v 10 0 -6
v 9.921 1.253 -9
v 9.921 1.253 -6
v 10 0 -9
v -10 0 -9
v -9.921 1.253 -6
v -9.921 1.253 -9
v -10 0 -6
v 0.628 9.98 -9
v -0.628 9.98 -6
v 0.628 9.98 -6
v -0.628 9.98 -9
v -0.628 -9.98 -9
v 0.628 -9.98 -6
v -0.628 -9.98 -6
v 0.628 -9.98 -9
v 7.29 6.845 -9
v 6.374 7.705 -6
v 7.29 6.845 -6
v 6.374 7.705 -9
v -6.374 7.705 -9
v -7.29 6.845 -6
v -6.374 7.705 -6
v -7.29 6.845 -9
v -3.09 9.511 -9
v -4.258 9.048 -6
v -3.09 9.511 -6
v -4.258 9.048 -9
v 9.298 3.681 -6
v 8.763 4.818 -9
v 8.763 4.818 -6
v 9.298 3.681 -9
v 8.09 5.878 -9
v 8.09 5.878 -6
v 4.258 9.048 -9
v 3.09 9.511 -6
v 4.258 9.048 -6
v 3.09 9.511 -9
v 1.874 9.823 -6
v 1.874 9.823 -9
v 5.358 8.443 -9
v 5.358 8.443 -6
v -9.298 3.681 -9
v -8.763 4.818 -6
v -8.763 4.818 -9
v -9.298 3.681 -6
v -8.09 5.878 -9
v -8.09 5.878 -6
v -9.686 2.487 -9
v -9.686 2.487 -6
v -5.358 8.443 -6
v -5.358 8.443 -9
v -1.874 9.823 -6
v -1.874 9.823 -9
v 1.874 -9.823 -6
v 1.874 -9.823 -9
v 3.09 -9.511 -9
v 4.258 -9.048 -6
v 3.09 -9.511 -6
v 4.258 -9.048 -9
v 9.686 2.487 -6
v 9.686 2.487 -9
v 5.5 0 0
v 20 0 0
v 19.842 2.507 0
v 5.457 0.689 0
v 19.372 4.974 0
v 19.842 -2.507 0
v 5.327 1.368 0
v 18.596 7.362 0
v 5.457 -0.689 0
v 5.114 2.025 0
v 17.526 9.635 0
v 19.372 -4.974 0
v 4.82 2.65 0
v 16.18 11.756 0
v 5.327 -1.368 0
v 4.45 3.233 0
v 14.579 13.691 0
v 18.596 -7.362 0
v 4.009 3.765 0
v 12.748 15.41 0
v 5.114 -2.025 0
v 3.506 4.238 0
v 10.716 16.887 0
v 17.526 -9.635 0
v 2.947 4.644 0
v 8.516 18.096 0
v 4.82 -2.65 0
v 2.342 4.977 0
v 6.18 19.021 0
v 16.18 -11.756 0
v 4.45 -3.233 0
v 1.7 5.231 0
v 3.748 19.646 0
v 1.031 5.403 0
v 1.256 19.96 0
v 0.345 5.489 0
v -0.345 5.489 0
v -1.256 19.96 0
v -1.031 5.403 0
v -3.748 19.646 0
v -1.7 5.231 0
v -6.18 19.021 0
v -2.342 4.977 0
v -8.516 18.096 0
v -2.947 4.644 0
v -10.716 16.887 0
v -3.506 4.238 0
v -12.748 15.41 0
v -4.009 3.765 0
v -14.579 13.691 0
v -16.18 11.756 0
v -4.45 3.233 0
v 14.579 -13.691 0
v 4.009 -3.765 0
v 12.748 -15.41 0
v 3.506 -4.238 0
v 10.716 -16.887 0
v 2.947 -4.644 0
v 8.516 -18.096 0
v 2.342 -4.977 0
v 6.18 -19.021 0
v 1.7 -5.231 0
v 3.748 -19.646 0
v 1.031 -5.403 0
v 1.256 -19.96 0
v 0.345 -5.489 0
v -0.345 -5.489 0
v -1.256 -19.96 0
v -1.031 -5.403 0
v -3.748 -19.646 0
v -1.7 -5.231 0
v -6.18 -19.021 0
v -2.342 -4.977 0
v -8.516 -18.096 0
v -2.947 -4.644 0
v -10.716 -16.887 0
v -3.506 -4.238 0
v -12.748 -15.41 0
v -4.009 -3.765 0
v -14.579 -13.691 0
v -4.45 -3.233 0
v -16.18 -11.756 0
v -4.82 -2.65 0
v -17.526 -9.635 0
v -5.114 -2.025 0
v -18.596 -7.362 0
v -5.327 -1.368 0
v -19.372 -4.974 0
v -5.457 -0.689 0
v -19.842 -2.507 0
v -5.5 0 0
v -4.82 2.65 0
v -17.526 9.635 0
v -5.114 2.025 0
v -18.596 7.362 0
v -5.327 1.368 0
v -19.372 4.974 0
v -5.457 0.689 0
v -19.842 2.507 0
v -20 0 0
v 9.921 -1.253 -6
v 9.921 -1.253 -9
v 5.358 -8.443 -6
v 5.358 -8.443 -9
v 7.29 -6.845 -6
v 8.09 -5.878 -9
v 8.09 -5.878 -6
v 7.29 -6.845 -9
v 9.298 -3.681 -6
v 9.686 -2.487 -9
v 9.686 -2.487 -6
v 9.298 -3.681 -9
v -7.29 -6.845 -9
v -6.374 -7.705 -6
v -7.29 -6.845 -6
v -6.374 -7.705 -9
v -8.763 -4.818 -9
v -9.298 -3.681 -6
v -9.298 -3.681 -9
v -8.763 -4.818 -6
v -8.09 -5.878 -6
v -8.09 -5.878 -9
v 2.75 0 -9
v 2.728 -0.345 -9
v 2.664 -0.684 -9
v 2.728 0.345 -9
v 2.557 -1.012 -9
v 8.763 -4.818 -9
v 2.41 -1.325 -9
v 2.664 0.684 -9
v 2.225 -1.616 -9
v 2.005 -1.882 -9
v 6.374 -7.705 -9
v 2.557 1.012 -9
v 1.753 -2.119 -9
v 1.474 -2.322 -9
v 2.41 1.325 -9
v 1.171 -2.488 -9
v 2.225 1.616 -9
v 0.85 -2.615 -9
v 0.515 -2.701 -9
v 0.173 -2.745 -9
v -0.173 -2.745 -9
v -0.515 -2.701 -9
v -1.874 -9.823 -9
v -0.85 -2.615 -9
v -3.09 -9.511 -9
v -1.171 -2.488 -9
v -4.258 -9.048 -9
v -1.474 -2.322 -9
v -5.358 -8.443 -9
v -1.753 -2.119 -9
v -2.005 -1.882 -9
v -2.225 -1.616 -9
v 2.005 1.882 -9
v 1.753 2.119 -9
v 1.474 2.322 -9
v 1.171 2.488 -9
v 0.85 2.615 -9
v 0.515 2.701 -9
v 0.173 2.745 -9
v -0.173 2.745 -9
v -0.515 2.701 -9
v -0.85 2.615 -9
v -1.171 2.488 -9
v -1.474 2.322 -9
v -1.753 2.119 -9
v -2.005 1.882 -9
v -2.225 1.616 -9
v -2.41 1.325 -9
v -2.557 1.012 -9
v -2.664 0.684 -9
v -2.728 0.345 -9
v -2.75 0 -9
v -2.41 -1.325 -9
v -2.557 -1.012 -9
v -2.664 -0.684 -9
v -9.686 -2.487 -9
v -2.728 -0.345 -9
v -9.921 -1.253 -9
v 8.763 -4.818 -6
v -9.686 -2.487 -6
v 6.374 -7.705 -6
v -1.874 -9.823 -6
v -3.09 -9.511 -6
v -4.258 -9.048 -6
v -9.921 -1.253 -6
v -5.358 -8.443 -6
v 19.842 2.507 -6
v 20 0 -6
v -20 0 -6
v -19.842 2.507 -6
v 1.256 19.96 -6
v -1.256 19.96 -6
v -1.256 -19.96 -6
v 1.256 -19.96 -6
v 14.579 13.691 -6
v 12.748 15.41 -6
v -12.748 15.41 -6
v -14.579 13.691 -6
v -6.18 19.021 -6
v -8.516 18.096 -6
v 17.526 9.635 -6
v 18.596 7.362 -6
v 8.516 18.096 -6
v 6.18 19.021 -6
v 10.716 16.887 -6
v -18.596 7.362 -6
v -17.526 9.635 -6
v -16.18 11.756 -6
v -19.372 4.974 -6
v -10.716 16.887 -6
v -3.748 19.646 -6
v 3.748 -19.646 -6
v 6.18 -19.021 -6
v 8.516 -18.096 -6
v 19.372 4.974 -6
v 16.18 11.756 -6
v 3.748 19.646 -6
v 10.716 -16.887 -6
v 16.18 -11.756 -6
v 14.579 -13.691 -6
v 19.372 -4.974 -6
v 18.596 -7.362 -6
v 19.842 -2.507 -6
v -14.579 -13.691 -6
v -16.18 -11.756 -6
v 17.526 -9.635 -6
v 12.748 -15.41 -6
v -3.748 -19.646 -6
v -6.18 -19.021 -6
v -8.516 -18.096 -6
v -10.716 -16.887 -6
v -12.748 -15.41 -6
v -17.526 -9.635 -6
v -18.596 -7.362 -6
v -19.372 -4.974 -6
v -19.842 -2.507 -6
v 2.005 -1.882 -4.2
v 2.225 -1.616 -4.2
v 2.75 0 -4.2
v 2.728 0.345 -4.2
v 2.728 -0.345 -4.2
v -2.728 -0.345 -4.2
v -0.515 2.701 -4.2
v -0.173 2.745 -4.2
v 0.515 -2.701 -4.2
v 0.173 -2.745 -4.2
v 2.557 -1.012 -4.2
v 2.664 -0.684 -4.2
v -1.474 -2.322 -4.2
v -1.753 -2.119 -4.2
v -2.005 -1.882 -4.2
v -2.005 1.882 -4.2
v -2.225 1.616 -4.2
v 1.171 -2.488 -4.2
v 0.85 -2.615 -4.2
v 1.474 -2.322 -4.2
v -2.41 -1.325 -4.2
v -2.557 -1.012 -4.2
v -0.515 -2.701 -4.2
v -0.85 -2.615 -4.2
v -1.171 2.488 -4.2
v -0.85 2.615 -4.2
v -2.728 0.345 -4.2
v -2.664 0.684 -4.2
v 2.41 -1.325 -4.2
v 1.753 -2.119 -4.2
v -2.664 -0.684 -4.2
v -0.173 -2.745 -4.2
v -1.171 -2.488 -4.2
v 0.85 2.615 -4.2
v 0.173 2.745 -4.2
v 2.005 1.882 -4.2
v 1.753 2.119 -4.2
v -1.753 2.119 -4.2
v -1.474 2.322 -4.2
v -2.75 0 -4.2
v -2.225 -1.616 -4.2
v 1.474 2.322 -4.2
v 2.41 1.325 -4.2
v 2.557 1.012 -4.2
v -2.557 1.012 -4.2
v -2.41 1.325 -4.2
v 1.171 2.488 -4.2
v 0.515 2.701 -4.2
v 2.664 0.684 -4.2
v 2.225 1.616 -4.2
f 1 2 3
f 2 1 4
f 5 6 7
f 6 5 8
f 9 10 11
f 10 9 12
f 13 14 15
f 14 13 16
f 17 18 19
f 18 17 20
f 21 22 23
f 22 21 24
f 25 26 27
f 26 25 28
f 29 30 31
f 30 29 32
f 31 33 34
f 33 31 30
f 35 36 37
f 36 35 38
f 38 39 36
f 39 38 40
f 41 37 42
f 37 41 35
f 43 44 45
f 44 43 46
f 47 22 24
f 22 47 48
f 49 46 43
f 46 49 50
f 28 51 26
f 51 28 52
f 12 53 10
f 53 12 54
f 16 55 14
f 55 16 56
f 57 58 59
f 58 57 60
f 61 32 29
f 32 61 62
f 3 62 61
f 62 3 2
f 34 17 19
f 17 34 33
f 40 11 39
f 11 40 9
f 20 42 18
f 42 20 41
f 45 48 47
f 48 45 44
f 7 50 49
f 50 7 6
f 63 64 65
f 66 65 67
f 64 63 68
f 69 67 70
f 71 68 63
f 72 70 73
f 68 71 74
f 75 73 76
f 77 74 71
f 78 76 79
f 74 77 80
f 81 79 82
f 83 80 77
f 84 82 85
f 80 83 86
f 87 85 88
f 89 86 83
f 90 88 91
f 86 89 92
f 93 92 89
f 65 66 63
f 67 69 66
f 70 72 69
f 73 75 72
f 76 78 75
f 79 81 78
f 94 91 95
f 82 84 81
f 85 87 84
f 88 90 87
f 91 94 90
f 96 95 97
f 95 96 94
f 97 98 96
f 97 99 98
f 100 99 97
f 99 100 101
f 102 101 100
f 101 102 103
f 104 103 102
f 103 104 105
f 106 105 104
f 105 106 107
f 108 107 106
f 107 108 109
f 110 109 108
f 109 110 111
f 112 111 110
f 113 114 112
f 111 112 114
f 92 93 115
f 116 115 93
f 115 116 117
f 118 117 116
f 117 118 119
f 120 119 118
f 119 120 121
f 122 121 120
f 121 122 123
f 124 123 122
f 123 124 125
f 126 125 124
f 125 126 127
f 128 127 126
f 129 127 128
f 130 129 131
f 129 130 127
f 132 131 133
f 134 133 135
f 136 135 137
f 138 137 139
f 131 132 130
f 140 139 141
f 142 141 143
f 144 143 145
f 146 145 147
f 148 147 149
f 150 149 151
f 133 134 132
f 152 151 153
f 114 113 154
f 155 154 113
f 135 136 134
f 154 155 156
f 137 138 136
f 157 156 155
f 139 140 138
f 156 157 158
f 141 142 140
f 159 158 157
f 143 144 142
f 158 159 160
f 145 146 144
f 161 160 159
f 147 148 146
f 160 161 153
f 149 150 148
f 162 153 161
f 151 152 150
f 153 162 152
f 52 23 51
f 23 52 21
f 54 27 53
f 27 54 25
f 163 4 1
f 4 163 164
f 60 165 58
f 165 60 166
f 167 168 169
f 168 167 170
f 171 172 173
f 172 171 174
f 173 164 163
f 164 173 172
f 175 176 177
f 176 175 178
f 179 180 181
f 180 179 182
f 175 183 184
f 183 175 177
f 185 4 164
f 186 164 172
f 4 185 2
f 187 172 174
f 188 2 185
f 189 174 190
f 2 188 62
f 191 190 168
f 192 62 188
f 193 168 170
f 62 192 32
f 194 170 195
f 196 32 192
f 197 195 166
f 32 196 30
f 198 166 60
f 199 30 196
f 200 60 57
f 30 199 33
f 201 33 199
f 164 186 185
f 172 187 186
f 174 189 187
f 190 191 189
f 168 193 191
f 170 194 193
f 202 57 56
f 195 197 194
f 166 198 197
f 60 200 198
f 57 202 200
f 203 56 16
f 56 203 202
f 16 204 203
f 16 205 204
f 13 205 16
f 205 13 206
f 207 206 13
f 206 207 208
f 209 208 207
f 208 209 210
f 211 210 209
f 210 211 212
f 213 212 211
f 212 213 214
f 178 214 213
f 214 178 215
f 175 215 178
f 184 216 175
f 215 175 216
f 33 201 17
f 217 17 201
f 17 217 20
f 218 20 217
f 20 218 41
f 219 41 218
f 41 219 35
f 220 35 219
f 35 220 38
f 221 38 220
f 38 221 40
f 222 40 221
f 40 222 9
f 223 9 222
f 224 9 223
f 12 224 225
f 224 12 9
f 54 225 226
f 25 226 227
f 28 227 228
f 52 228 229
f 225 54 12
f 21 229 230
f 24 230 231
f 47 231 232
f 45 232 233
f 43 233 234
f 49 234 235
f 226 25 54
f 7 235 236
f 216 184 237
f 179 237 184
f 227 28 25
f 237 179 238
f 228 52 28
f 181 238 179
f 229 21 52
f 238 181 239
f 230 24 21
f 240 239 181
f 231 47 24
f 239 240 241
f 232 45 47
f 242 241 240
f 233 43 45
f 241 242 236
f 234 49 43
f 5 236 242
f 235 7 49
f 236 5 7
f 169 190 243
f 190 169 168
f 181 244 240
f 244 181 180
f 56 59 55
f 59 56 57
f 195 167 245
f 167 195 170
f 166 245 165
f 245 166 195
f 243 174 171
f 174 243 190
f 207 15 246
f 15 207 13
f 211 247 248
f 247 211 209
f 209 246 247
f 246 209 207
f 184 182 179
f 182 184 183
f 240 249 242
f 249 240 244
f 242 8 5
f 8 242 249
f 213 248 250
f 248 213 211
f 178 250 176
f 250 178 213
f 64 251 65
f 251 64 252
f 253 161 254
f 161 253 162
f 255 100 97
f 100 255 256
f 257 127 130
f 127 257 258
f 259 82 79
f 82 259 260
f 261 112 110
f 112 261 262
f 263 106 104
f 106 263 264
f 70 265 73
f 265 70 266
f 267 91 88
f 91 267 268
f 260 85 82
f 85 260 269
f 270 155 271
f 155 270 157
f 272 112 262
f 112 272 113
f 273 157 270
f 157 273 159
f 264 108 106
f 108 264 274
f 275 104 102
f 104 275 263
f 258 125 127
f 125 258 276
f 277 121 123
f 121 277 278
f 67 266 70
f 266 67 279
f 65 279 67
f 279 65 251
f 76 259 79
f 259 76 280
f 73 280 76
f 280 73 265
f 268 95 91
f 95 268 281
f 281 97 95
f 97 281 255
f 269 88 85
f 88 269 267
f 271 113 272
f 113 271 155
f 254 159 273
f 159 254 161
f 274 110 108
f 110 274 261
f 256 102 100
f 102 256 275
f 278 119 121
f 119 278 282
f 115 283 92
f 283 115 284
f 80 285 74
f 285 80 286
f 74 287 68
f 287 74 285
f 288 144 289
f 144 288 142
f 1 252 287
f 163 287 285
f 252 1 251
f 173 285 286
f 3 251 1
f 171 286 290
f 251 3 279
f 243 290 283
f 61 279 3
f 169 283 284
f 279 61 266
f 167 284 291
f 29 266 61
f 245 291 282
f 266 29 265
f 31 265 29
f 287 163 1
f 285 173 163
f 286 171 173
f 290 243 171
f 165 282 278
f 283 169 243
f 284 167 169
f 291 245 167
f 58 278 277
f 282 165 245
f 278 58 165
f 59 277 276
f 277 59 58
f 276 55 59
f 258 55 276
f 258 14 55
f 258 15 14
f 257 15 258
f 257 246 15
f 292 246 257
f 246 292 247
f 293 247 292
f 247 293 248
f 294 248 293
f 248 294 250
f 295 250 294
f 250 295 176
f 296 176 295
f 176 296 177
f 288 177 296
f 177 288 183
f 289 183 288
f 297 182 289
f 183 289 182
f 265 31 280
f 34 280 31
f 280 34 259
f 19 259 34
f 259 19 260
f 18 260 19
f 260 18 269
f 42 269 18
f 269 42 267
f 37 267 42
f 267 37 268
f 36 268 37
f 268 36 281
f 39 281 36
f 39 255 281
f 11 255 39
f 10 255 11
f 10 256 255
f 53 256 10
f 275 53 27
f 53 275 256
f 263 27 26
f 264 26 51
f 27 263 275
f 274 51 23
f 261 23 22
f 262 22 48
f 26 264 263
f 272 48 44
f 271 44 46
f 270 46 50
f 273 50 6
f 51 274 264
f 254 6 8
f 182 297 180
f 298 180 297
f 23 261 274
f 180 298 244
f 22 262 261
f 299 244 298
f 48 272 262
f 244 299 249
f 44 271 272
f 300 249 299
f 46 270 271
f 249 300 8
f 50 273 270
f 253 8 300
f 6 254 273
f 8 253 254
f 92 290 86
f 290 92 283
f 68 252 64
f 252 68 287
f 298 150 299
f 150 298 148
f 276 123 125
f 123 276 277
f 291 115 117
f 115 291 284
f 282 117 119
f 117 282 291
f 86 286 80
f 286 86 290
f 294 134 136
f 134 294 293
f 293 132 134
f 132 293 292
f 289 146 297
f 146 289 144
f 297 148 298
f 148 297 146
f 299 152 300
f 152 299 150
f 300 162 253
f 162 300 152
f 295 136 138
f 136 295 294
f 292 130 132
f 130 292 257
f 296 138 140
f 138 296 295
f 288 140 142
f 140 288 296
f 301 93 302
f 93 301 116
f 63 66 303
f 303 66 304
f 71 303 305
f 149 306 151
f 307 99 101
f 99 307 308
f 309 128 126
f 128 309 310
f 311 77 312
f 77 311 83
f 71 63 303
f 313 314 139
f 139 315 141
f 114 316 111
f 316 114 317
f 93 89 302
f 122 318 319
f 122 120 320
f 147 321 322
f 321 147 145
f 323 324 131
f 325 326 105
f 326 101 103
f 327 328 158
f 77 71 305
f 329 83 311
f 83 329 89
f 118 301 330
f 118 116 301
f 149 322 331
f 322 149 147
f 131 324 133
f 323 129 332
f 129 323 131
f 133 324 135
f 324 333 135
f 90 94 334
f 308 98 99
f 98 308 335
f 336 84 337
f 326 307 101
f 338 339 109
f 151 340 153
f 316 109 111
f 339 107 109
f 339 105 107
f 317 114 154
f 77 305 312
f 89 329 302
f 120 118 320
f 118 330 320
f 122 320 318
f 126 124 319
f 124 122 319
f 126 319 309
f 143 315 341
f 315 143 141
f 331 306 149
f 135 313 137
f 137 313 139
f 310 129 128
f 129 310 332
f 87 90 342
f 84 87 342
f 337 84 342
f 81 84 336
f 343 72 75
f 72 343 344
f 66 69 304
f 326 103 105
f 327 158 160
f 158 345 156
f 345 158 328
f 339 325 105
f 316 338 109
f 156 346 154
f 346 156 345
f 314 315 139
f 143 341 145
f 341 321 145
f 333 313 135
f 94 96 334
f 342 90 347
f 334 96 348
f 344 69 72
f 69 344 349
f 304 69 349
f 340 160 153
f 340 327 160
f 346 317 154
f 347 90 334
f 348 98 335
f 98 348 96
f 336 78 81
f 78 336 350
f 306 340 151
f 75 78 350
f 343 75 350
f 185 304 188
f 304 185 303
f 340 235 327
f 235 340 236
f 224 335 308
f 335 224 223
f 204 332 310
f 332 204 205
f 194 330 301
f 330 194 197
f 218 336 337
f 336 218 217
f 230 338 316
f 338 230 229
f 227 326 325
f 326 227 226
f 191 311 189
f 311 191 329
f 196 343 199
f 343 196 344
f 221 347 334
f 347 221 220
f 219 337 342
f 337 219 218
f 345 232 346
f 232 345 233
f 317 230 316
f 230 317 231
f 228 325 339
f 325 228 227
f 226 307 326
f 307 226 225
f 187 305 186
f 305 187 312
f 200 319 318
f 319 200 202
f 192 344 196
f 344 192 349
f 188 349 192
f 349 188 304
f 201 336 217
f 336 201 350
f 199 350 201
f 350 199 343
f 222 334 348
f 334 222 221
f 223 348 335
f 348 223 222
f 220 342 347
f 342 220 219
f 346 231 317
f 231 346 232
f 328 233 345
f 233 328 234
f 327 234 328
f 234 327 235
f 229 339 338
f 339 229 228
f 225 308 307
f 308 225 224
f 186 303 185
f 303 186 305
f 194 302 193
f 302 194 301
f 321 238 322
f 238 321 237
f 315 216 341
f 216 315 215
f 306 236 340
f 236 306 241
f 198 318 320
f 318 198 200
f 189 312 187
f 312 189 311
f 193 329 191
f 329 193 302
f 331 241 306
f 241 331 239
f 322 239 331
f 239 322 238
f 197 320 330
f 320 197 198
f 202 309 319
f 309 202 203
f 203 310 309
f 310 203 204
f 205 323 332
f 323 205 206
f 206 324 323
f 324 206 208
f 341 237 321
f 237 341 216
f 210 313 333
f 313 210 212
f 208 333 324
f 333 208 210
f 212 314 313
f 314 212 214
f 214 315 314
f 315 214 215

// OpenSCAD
$fn = 50;


difference() {
	union() {
		translate(v = [0, 0, -9.0000000000]) {
			cylinder(h = 9, r = 10.0000000000);
		}
		translate(v = [0, 0, -6.0000000000]) {
			cylinder(h = 6, r = 20.0000000000);
		}
	}
	union() {
		translate(v = [0, 0, 0]) {
			rotate(a = [0, 0, 0]) {
				difference() {
					union() {
						#translate(v = [0, 0, -9.0000000000]) {
							cylinder(h = 9, r = 2.2500000000);
						}
						#translate(v = [0, 0, -4.2000000000]) {
							cylinder(h = 4.2000000000, r1 = 2.7500000000, r2 = 5.5000000000);
						}
						#translate(v = [0, 0, -9.0000000000]) {
							cylinder(h = 9, r = 2.7500000000);
						}
						#translate(v = [0, 0, -9.0000000000]) {
							cylinder(h = 9, r = 2.2500000000);
						}
					}
					union();
				}
			}
		}
	}
}
